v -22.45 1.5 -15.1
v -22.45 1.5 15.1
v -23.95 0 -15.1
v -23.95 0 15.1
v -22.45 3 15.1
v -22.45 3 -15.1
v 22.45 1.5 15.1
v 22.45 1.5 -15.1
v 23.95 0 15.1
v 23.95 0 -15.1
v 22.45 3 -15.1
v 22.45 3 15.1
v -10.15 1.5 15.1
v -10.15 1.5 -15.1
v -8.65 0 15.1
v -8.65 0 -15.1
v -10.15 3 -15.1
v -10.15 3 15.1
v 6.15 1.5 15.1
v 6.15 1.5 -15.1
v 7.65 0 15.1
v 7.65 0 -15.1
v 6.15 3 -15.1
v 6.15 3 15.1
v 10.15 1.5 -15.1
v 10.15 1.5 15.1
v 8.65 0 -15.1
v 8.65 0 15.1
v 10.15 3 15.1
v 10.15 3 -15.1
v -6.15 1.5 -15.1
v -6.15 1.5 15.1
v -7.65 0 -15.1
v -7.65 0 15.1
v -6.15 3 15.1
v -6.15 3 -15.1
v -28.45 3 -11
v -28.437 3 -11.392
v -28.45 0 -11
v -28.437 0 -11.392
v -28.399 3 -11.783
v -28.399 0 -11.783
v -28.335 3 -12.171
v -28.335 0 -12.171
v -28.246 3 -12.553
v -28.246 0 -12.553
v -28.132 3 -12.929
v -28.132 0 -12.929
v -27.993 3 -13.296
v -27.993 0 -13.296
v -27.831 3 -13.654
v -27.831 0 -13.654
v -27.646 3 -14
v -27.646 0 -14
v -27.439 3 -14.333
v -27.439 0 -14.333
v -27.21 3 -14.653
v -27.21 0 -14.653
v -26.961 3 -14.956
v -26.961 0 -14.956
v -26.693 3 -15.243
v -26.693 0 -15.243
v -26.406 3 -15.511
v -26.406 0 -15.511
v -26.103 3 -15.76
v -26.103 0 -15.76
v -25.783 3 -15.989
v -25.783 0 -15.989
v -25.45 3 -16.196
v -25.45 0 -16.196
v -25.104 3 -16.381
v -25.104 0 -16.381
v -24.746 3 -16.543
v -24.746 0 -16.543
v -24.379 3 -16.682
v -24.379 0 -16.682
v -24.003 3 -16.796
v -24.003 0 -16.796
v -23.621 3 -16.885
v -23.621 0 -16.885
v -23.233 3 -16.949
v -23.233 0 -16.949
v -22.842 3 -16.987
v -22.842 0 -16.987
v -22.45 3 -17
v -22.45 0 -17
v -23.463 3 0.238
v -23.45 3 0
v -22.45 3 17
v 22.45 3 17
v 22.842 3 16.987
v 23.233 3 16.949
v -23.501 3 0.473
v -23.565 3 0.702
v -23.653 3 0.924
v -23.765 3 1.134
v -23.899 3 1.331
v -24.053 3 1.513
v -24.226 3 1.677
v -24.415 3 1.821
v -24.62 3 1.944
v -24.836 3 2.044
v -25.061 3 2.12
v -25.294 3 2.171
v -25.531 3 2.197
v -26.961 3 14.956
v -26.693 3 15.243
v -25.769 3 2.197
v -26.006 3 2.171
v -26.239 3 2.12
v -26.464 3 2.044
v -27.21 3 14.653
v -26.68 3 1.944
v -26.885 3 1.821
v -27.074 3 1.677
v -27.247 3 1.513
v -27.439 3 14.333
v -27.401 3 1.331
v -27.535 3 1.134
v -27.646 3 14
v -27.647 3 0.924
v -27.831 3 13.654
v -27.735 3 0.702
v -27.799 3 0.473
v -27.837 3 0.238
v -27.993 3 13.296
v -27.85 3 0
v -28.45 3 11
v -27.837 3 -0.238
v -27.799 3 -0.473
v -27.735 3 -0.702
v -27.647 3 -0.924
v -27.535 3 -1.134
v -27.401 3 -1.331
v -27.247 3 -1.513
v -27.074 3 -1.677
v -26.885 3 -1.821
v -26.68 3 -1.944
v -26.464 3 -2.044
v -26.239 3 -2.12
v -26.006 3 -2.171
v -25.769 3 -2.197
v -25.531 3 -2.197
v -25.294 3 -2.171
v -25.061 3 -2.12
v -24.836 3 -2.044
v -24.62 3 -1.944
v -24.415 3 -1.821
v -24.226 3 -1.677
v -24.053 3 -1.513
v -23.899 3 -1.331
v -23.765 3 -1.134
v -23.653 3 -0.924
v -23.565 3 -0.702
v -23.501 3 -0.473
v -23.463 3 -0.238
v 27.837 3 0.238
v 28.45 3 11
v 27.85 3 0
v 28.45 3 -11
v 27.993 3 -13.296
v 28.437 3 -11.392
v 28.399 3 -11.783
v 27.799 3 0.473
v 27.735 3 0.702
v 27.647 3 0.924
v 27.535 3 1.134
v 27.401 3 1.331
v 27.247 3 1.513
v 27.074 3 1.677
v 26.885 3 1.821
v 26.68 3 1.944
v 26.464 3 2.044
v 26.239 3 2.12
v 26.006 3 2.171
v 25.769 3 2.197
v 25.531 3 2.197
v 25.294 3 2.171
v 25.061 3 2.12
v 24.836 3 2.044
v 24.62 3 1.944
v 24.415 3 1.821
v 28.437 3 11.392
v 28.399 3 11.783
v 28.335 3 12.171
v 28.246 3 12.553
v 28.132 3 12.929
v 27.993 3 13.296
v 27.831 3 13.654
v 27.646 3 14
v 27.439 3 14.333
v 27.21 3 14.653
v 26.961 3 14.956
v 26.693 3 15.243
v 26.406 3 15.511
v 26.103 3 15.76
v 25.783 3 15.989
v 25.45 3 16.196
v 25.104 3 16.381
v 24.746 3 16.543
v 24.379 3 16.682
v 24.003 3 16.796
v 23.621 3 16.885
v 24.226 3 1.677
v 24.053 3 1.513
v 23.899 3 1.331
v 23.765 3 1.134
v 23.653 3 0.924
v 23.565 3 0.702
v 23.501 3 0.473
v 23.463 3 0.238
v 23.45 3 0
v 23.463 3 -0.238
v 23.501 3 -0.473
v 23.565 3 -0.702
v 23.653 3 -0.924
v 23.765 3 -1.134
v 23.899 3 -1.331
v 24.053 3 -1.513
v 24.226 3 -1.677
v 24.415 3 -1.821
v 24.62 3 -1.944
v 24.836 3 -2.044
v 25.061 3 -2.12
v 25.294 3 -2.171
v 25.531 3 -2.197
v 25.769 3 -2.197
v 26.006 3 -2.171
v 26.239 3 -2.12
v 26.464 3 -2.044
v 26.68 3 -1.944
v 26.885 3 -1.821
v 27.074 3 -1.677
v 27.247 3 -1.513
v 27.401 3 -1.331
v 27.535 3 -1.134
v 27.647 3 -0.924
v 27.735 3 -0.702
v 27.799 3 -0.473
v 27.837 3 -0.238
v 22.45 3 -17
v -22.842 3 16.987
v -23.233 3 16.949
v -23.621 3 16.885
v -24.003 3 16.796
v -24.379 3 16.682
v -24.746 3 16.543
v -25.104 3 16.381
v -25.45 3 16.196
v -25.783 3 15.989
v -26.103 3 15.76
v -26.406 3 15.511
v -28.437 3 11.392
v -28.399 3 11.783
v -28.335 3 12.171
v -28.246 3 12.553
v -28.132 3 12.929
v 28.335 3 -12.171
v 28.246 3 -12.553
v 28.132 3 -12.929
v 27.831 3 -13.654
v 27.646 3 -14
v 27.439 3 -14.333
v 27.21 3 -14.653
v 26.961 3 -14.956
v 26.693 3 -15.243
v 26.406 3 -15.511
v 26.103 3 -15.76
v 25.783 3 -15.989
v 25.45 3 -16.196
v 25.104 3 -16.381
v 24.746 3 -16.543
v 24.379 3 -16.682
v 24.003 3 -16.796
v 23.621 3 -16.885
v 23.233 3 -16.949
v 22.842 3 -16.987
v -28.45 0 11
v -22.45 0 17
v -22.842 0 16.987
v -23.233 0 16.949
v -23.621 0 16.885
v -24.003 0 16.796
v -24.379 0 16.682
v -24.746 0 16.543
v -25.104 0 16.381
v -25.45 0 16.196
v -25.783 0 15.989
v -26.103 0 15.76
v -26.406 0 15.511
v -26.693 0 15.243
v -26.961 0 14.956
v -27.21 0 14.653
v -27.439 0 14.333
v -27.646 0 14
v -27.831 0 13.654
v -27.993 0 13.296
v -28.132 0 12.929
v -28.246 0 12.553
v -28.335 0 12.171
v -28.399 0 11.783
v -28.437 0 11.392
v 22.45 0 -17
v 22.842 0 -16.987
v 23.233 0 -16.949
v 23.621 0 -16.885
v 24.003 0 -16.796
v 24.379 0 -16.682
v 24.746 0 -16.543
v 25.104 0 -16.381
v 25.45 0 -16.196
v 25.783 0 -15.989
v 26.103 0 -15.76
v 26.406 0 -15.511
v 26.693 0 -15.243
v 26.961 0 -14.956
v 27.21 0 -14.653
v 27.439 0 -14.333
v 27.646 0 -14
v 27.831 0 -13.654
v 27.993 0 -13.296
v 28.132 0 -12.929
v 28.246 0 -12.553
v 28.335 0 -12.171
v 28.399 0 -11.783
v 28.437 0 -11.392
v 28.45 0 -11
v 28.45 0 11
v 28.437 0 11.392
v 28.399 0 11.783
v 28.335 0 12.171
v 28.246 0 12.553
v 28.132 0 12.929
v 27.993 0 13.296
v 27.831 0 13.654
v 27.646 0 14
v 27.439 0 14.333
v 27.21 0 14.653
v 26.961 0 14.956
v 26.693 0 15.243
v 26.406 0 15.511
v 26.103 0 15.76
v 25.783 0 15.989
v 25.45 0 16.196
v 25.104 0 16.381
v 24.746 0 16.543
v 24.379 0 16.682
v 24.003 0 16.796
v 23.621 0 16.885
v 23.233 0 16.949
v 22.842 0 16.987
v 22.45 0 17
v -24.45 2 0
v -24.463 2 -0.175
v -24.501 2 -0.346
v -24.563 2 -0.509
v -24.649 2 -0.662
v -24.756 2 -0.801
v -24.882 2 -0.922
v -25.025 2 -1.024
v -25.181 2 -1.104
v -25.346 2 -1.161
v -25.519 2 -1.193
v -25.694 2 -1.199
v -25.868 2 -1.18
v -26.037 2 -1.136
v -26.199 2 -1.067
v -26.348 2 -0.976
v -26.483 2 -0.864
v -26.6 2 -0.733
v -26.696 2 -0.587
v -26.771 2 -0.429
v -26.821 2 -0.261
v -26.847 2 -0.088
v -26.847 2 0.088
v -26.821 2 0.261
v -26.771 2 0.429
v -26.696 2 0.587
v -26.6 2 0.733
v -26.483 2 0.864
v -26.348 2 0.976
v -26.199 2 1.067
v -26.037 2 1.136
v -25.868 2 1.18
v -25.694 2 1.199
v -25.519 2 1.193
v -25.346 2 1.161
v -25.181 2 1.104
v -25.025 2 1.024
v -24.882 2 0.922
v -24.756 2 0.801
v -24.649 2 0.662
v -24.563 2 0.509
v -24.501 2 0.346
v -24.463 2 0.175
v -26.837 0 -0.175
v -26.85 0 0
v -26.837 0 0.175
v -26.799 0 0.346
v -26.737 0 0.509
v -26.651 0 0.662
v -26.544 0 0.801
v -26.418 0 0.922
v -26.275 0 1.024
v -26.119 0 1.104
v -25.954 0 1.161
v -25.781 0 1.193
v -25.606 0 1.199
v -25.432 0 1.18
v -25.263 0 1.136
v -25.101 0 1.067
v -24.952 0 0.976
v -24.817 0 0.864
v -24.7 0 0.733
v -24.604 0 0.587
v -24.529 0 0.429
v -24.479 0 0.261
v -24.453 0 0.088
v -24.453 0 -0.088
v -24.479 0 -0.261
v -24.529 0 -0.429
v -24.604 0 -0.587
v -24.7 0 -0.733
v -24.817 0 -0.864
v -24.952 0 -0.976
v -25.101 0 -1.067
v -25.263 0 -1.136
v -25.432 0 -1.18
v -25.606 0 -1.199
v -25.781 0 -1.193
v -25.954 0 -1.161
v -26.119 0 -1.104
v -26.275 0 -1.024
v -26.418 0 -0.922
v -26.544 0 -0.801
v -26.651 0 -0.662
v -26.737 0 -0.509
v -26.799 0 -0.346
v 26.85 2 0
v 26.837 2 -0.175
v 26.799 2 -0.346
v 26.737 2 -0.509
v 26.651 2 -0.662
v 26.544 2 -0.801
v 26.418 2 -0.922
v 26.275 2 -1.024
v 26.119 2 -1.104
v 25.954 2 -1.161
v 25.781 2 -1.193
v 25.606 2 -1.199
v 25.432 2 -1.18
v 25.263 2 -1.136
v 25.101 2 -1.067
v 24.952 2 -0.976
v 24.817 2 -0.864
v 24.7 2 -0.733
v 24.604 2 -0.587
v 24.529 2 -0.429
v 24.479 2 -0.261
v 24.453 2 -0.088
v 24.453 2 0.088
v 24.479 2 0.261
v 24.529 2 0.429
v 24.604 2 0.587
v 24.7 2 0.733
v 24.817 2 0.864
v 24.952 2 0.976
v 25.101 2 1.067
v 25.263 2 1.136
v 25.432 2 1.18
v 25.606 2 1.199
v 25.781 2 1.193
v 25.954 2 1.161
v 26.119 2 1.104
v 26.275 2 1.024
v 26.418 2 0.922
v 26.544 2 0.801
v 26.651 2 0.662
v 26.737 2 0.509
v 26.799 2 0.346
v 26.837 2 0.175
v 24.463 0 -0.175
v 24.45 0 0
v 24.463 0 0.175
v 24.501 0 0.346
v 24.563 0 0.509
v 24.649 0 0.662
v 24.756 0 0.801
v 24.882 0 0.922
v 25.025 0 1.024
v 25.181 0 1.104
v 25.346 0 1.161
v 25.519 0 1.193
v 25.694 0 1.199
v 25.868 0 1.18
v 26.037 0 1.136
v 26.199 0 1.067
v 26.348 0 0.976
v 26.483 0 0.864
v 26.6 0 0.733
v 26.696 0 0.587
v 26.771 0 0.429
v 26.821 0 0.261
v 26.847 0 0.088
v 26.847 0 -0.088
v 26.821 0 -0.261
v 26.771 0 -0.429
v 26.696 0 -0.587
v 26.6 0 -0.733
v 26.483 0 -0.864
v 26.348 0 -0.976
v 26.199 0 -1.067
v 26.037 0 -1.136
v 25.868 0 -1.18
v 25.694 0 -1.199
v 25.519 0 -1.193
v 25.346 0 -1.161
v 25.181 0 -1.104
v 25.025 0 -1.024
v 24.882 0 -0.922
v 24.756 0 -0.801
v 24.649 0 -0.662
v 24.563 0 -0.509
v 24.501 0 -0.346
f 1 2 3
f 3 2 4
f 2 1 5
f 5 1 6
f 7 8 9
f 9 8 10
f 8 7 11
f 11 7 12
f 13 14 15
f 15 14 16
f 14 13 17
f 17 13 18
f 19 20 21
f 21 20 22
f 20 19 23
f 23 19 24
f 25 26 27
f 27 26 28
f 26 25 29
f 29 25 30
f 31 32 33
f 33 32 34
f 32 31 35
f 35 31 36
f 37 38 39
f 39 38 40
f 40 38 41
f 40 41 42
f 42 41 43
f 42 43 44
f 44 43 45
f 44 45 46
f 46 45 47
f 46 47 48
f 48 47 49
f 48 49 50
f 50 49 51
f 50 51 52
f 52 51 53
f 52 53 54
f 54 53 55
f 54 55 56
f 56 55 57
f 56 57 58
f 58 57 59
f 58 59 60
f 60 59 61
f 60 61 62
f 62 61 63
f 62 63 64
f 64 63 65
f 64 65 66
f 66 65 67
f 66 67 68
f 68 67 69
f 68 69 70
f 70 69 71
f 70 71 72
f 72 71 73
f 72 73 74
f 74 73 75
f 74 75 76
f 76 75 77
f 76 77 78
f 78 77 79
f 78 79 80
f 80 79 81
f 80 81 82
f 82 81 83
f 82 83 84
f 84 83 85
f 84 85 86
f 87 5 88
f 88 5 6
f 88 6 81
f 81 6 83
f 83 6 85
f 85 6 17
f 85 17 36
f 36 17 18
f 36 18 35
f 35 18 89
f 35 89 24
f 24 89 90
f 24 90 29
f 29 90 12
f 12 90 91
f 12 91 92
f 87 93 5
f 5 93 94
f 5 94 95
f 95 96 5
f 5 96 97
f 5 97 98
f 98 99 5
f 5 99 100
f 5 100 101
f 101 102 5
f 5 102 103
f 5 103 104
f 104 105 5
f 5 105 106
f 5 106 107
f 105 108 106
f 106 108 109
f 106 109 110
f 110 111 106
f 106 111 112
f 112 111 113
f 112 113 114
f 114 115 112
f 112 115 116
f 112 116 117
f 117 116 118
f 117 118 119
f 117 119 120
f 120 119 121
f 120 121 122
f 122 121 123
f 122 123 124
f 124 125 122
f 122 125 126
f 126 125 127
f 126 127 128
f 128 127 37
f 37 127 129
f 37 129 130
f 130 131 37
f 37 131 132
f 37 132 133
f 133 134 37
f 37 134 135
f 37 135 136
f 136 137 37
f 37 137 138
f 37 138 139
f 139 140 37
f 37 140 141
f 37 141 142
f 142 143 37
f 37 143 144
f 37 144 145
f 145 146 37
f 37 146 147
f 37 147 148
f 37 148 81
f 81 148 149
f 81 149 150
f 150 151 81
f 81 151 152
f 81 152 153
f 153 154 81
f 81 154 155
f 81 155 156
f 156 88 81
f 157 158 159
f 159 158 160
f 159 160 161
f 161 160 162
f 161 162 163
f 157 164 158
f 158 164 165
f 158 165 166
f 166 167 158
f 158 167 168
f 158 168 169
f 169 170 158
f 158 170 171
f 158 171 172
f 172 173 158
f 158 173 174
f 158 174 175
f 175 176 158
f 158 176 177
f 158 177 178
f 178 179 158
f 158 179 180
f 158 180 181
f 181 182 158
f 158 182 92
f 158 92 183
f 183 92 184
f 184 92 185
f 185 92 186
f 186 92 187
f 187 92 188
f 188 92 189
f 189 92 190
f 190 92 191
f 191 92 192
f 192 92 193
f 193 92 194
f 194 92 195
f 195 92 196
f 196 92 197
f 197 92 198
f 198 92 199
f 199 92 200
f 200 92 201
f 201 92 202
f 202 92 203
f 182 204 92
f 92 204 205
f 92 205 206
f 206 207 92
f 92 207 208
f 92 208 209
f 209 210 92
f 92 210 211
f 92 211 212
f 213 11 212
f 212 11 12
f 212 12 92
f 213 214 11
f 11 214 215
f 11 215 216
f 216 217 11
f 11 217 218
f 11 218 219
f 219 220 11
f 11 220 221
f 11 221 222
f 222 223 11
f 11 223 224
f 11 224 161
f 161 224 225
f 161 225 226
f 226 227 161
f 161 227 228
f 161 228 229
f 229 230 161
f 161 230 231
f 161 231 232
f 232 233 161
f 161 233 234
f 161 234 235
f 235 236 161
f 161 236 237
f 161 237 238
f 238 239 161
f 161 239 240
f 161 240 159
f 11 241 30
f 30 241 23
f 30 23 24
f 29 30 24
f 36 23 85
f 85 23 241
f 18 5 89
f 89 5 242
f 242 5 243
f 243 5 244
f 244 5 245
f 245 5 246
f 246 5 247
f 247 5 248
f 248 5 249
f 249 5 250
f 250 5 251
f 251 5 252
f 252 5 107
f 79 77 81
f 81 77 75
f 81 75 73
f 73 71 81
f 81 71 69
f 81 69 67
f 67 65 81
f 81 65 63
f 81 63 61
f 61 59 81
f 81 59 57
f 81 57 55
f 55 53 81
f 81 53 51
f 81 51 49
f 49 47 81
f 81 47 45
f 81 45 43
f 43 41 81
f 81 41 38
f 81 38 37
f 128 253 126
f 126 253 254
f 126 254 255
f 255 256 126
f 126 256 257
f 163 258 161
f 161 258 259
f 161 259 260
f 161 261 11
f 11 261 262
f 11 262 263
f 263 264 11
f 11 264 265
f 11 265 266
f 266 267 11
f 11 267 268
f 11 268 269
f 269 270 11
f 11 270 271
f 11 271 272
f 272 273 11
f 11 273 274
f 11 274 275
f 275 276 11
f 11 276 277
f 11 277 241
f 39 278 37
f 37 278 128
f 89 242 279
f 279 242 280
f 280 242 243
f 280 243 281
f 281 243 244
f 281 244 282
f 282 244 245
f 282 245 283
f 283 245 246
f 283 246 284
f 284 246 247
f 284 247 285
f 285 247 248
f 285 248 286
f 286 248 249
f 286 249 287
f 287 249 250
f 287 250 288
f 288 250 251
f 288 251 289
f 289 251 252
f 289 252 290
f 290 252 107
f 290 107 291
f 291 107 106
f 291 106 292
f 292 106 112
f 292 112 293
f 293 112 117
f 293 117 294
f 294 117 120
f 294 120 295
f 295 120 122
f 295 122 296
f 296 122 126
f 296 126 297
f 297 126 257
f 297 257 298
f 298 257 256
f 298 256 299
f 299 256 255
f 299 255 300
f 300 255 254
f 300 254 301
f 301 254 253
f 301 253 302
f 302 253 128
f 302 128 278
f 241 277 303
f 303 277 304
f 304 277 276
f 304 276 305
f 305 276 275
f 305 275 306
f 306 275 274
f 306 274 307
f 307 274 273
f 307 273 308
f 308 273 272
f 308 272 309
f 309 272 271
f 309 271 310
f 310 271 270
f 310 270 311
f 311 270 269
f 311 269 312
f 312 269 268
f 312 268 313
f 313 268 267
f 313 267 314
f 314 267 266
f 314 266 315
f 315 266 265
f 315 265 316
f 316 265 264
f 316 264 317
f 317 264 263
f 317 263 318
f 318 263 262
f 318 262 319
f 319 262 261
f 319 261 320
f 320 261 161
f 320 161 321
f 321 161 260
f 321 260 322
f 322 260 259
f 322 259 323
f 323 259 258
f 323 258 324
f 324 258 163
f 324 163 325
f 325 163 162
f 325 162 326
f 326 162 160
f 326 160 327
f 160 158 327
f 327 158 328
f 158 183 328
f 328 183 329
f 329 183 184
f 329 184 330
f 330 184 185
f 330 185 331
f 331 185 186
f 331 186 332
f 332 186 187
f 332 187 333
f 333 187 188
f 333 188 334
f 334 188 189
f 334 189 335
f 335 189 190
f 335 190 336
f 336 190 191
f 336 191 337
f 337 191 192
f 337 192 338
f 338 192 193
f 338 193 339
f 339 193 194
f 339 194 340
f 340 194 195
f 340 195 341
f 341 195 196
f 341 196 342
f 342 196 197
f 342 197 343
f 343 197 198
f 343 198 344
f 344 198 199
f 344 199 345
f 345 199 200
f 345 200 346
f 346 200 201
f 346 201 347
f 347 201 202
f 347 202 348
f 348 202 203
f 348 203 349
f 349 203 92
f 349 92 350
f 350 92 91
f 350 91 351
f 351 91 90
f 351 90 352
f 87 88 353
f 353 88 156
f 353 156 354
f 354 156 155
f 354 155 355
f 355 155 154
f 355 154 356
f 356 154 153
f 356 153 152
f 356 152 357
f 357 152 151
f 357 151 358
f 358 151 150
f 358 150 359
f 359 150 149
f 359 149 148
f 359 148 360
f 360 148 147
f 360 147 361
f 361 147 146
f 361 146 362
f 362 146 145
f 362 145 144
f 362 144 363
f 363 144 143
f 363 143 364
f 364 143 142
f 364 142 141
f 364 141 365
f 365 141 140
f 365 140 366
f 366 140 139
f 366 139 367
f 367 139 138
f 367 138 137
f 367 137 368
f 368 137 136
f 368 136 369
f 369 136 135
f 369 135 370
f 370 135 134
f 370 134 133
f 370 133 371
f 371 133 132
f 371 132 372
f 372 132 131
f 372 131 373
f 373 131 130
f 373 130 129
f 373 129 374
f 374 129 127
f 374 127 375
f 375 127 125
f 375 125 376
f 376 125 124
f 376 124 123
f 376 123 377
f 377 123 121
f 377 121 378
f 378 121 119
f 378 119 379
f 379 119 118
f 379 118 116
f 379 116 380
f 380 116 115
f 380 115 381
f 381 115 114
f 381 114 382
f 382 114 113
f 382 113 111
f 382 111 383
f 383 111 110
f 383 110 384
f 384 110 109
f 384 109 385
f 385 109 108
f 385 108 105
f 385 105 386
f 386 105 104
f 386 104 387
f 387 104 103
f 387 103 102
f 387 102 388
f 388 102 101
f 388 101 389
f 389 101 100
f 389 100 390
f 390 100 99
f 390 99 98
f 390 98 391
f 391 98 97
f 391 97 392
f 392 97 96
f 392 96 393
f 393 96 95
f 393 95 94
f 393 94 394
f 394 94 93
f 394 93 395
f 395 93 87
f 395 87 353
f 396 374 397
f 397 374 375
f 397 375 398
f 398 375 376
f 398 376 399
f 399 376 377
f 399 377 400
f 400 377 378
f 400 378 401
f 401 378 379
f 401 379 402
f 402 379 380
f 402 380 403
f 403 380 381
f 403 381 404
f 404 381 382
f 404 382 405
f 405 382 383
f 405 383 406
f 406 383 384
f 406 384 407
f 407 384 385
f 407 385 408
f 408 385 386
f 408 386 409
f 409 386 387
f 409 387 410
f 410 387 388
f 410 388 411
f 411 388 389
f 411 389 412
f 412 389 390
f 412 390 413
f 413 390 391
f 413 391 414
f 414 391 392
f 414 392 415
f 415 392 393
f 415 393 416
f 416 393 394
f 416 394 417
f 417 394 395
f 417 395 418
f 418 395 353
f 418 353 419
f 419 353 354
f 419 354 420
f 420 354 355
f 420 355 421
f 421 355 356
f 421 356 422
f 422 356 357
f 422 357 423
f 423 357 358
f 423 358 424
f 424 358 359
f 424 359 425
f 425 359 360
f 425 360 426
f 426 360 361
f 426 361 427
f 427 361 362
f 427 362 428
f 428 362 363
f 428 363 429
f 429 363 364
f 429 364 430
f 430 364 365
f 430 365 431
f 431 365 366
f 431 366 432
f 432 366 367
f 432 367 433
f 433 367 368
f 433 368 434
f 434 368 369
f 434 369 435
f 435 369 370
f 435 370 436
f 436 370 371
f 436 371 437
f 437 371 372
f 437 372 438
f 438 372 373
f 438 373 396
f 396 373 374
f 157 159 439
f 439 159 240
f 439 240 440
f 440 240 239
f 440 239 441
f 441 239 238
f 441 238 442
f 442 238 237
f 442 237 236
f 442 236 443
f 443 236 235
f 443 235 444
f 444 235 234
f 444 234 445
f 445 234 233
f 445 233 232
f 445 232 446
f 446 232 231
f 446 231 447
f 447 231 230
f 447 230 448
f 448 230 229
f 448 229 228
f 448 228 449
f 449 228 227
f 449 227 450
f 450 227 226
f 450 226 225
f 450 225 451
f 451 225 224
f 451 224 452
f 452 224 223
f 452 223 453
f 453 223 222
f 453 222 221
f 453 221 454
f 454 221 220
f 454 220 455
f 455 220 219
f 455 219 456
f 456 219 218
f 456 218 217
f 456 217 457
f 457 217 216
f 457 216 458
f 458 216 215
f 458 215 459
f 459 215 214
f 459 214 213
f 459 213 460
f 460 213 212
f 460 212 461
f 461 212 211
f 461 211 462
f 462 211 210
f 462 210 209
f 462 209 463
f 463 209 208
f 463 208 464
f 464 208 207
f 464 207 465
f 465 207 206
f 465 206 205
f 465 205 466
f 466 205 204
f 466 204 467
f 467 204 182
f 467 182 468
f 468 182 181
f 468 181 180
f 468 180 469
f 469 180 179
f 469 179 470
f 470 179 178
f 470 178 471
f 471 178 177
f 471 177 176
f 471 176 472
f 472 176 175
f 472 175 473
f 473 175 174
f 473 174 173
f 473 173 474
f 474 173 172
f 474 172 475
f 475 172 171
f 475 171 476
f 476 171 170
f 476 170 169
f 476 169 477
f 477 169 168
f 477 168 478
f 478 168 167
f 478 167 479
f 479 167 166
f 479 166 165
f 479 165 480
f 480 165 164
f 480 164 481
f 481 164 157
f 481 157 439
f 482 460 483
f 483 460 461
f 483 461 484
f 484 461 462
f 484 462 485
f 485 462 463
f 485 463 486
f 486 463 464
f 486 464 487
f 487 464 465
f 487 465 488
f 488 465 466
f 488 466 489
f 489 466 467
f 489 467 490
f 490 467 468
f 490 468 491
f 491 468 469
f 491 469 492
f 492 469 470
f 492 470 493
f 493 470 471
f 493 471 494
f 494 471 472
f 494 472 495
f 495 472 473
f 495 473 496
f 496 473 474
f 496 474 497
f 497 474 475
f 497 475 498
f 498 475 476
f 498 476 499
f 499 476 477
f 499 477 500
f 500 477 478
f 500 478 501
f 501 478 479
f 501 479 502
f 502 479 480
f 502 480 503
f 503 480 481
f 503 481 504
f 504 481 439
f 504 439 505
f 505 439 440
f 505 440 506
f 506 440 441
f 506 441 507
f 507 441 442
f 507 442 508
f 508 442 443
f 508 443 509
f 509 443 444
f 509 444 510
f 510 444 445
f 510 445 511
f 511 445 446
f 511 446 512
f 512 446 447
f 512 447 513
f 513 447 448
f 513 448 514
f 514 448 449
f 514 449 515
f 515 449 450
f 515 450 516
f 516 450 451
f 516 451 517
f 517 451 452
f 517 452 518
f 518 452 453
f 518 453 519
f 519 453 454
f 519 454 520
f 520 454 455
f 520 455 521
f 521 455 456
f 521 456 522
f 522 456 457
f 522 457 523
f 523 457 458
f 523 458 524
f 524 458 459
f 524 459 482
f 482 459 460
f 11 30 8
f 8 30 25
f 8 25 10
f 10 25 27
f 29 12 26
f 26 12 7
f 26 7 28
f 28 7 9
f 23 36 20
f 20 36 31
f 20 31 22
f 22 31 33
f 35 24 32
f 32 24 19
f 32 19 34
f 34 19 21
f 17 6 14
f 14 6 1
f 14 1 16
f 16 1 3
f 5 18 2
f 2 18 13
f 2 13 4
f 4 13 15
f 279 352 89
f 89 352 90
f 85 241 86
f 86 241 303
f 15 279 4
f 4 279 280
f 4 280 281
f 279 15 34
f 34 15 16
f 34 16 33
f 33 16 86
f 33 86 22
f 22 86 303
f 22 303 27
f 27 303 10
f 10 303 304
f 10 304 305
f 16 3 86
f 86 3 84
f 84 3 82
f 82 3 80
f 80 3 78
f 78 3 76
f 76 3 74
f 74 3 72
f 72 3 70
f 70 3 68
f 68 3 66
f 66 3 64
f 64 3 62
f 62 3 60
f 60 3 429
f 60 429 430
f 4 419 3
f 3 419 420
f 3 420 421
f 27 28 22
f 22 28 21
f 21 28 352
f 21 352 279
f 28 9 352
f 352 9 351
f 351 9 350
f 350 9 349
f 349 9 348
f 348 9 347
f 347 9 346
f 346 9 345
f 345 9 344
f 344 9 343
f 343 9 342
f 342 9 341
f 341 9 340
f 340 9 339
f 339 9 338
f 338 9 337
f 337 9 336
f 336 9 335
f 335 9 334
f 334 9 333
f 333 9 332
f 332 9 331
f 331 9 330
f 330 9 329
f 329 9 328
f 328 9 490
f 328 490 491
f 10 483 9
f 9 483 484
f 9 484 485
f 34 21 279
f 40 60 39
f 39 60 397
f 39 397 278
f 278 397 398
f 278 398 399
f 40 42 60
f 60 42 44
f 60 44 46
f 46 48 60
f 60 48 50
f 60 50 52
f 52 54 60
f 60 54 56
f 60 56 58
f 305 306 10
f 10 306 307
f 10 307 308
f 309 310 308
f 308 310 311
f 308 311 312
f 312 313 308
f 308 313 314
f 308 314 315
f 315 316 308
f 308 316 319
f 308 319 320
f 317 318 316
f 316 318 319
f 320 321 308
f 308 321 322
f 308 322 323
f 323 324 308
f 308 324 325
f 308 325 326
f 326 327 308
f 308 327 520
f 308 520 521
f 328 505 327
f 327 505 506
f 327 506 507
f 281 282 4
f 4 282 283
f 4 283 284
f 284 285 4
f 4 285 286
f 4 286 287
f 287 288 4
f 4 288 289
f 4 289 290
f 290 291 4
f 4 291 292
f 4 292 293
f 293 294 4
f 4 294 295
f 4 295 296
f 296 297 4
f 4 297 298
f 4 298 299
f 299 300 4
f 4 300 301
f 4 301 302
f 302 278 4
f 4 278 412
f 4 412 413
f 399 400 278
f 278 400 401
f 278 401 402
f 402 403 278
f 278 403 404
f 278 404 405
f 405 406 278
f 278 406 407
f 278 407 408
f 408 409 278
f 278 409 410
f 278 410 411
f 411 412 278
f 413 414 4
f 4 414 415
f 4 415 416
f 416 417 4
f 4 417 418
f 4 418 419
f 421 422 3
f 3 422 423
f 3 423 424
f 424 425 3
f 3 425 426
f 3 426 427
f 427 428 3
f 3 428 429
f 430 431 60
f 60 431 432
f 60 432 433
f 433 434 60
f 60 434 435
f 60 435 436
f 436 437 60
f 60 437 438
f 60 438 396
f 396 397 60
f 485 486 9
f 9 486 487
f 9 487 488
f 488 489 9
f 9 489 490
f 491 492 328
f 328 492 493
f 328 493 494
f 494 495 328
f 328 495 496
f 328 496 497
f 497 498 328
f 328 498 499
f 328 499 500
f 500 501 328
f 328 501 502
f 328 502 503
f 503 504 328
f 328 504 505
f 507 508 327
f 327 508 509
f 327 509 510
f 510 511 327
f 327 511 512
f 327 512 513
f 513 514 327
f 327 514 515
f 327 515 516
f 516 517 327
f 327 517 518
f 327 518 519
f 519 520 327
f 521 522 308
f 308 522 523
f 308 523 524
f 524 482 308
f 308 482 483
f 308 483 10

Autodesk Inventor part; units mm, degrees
ref_plane "YZ Plane" through (0, 0, 0) normal (1, 0, 0) x (0, 1, 0)
ref_plane "XZ Plane" through (0, 0, 0) normal (0, 1, 0) x (-1, 0, 0)
ref_plane "XY Plane" through (0, 0, 0) normal (0, 0, 1) x (1, 0, 0)
sketch "Skizze1" plane through (0, 0, 0) normal (0, 1, 0) x (-1, 0, 0)
  line L0 (28.45, 17) -> (-28.45, 17)
  line L1 (-28.45, 17) -> (-28.45, -17)
  line L2 (-28.45, -17) -> (28.45, -17)
  line L3 (28.45, -17) -> (28.45, 17)
  line L4 (28.45, 17) -> (-28.45, -17) construction
  line L5 (-28.45, 17) -> (28.45, -17) construction
  point P0 (0, 0)
  dimension "d0" = 56.9
  dimension "d1" = 34
extrude "Extrusion1" add sketch "Skizze1" along normal blind 3
sketch "Skizze2" plane through (0, 3, 0) normal (0, 1, 0) x (1, 0, 0)
  line L0 (-6.15, -15.1) -> (6.15, -15.1)
  line L1 (6.15, -15.1) -> (6.15, 15.1)
  line L2 (6.15, 15.1) -> (-6.15, 15.1)
  line L3 (-6.15, 15.1) -> (-6.15, -15.1)
  line L4 (-6.15, -15.1) -> (6.15, 15.1) construction
  line L5 (6.15, -15.1) -> (-6.15, 15.1) construction
  line L6 (10.15, -15.1) -> (22.45, -15.1)
  line L7 (22.45, -15.1) -> (22.45, 15.1)
  line L8 (22.45, 15.1) -> (10.15, 15.1)
  line L9 (10.15, 15.1) -> (10.15, -15.1)
  line L10 (10.15, -15.1) -> (22.45, 15.1) construction
  line L11 (22.45, -15.1) -> (10.15, 15.1) construction
  line L12 (-22.45, -15.1) -> (-10.15, -15.1)
  line L13 (-10.15, -15.1) -> (-10.15, 15.1)
  line L14 (-10.15, 15.1) -> (-22.45, 15.1)
  line L15 (-22.45, 15.1) -> (-22.45, -15.1)
  line L16 (-22.45, -15.1) -> (-10.15, 15.1) construction
  line L17 (-10.15, -15.1) -> (-22.45, 15.1) construction
  line L18 (-28.45, 17) -> (-28.45, -17) projected
  line L19 (28.45, -17) -> (28.45, 17) projected
  point P0 (0, 0)
  point P1 (0, 0)
  point P2 (16.3, 0)
  point P3 (-16.3, 0)
  dimension "d4" = 12.3
  dimension "d5" = 30.2
  dimension "d6" = 12.3
  dimension "d7" = 30.2
  dimension "d8" = 12.3
  dimension "d9" = 30.2
  dimension "d10" = 4
  dimension "d11" = 4
  dimension "d12" = 6
  dimension "d13" = 6
extrude "Extrusion2" cut sketch "Skizze2" against normal blind 3
sketch "Skizze3" plane through (0, 3, 0) normal (0, 1, 0) x (1, 0, 0)
  line L0 (-25.65, 10) -> (25.65, 10)
  line L1 (25.65, 10) -> (25.65, -10)
  line L2 (25.65, -10) -> (-25.65, -10)
  line L3 (-25.65, -10) -> (-25.65, 10)
  line L4 (-25.65, 10) -> (25.65, -10) construction
  line L5 (25.65, 10) -> (-25.65, -10) construction
  line L6 (-25.65, 0) -> (25.65, 0)
  point P0 (0, 0)
  dimension "d16" = 51.3
  dimension "d17" = 20
hole "Bohrung1" at (-25.65, 3, 0) at (25.65, 3, 0) direction (0, -1, 0) diameter 2.4 end through all countersink diameter 4.4 countersink angle 90 clearance for "Flachkopfmaschinenschraube" size "M2" standard "ANSI Metrisches M Profil"
fillet "Rundung1" radius 6 4 edges at (28.45, 1.5, 17) (28.45, 1.5, -17) (-28.45, 1.5, 17) (-28.45, 1.5, -17)
chamfer "Fase1" distance 1.5 angle 45 6 edges at (-6.15, 0, 0) (10.15, 0, 0) (6.15, 0, 0) (-10.15, 0, 0) (22.45, 0, 0) (-22.45, 0, 0)
properties part number "Wago2Din"
